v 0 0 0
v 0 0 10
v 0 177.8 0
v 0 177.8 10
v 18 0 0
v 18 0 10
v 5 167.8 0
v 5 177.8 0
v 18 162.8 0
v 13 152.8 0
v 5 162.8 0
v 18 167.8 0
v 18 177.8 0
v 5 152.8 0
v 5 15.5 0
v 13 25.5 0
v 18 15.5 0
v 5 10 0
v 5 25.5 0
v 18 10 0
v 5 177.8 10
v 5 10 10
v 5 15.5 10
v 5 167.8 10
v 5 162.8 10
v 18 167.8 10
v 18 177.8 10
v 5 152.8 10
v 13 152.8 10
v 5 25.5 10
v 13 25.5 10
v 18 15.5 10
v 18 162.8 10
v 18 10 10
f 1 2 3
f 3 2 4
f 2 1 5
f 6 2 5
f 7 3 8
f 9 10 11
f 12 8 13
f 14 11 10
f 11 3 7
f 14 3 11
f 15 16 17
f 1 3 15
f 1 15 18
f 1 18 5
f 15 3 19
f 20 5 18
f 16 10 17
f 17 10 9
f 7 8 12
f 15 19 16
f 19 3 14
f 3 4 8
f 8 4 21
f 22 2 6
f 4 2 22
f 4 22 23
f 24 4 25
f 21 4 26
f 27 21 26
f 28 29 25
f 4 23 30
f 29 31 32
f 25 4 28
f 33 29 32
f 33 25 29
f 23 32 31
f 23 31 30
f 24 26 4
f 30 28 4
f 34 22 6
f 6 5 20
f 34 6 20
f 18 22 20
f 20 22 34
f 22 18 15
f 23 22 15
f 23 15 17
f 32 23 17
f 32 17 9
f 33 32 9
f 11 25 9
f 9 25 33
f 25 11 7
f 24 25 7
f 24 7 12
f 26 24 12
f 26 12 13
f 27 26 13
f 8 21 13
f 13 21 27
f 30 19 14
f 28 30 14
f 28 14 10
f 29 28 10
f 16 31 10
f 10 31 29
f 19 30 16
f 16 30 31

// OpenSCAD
supportWidth=177.8;
supportThickness=10;

translate([0,0,0]) cube([5,supportWidth,supportThickness]);
translate([5,0,0]) cube([13,10,supportThickness]);
translate([5,15.5,0]) cube([13,10,supportThickness]);


translate([13,20,0]) cube([5,supportWidth-40,supportThickness]);
translate([5,supportWidth-10,0]) cube([13,10,supportThickness]);
translate([5,supportWidth-25,0]) cube([13,10,supportThickness]);
